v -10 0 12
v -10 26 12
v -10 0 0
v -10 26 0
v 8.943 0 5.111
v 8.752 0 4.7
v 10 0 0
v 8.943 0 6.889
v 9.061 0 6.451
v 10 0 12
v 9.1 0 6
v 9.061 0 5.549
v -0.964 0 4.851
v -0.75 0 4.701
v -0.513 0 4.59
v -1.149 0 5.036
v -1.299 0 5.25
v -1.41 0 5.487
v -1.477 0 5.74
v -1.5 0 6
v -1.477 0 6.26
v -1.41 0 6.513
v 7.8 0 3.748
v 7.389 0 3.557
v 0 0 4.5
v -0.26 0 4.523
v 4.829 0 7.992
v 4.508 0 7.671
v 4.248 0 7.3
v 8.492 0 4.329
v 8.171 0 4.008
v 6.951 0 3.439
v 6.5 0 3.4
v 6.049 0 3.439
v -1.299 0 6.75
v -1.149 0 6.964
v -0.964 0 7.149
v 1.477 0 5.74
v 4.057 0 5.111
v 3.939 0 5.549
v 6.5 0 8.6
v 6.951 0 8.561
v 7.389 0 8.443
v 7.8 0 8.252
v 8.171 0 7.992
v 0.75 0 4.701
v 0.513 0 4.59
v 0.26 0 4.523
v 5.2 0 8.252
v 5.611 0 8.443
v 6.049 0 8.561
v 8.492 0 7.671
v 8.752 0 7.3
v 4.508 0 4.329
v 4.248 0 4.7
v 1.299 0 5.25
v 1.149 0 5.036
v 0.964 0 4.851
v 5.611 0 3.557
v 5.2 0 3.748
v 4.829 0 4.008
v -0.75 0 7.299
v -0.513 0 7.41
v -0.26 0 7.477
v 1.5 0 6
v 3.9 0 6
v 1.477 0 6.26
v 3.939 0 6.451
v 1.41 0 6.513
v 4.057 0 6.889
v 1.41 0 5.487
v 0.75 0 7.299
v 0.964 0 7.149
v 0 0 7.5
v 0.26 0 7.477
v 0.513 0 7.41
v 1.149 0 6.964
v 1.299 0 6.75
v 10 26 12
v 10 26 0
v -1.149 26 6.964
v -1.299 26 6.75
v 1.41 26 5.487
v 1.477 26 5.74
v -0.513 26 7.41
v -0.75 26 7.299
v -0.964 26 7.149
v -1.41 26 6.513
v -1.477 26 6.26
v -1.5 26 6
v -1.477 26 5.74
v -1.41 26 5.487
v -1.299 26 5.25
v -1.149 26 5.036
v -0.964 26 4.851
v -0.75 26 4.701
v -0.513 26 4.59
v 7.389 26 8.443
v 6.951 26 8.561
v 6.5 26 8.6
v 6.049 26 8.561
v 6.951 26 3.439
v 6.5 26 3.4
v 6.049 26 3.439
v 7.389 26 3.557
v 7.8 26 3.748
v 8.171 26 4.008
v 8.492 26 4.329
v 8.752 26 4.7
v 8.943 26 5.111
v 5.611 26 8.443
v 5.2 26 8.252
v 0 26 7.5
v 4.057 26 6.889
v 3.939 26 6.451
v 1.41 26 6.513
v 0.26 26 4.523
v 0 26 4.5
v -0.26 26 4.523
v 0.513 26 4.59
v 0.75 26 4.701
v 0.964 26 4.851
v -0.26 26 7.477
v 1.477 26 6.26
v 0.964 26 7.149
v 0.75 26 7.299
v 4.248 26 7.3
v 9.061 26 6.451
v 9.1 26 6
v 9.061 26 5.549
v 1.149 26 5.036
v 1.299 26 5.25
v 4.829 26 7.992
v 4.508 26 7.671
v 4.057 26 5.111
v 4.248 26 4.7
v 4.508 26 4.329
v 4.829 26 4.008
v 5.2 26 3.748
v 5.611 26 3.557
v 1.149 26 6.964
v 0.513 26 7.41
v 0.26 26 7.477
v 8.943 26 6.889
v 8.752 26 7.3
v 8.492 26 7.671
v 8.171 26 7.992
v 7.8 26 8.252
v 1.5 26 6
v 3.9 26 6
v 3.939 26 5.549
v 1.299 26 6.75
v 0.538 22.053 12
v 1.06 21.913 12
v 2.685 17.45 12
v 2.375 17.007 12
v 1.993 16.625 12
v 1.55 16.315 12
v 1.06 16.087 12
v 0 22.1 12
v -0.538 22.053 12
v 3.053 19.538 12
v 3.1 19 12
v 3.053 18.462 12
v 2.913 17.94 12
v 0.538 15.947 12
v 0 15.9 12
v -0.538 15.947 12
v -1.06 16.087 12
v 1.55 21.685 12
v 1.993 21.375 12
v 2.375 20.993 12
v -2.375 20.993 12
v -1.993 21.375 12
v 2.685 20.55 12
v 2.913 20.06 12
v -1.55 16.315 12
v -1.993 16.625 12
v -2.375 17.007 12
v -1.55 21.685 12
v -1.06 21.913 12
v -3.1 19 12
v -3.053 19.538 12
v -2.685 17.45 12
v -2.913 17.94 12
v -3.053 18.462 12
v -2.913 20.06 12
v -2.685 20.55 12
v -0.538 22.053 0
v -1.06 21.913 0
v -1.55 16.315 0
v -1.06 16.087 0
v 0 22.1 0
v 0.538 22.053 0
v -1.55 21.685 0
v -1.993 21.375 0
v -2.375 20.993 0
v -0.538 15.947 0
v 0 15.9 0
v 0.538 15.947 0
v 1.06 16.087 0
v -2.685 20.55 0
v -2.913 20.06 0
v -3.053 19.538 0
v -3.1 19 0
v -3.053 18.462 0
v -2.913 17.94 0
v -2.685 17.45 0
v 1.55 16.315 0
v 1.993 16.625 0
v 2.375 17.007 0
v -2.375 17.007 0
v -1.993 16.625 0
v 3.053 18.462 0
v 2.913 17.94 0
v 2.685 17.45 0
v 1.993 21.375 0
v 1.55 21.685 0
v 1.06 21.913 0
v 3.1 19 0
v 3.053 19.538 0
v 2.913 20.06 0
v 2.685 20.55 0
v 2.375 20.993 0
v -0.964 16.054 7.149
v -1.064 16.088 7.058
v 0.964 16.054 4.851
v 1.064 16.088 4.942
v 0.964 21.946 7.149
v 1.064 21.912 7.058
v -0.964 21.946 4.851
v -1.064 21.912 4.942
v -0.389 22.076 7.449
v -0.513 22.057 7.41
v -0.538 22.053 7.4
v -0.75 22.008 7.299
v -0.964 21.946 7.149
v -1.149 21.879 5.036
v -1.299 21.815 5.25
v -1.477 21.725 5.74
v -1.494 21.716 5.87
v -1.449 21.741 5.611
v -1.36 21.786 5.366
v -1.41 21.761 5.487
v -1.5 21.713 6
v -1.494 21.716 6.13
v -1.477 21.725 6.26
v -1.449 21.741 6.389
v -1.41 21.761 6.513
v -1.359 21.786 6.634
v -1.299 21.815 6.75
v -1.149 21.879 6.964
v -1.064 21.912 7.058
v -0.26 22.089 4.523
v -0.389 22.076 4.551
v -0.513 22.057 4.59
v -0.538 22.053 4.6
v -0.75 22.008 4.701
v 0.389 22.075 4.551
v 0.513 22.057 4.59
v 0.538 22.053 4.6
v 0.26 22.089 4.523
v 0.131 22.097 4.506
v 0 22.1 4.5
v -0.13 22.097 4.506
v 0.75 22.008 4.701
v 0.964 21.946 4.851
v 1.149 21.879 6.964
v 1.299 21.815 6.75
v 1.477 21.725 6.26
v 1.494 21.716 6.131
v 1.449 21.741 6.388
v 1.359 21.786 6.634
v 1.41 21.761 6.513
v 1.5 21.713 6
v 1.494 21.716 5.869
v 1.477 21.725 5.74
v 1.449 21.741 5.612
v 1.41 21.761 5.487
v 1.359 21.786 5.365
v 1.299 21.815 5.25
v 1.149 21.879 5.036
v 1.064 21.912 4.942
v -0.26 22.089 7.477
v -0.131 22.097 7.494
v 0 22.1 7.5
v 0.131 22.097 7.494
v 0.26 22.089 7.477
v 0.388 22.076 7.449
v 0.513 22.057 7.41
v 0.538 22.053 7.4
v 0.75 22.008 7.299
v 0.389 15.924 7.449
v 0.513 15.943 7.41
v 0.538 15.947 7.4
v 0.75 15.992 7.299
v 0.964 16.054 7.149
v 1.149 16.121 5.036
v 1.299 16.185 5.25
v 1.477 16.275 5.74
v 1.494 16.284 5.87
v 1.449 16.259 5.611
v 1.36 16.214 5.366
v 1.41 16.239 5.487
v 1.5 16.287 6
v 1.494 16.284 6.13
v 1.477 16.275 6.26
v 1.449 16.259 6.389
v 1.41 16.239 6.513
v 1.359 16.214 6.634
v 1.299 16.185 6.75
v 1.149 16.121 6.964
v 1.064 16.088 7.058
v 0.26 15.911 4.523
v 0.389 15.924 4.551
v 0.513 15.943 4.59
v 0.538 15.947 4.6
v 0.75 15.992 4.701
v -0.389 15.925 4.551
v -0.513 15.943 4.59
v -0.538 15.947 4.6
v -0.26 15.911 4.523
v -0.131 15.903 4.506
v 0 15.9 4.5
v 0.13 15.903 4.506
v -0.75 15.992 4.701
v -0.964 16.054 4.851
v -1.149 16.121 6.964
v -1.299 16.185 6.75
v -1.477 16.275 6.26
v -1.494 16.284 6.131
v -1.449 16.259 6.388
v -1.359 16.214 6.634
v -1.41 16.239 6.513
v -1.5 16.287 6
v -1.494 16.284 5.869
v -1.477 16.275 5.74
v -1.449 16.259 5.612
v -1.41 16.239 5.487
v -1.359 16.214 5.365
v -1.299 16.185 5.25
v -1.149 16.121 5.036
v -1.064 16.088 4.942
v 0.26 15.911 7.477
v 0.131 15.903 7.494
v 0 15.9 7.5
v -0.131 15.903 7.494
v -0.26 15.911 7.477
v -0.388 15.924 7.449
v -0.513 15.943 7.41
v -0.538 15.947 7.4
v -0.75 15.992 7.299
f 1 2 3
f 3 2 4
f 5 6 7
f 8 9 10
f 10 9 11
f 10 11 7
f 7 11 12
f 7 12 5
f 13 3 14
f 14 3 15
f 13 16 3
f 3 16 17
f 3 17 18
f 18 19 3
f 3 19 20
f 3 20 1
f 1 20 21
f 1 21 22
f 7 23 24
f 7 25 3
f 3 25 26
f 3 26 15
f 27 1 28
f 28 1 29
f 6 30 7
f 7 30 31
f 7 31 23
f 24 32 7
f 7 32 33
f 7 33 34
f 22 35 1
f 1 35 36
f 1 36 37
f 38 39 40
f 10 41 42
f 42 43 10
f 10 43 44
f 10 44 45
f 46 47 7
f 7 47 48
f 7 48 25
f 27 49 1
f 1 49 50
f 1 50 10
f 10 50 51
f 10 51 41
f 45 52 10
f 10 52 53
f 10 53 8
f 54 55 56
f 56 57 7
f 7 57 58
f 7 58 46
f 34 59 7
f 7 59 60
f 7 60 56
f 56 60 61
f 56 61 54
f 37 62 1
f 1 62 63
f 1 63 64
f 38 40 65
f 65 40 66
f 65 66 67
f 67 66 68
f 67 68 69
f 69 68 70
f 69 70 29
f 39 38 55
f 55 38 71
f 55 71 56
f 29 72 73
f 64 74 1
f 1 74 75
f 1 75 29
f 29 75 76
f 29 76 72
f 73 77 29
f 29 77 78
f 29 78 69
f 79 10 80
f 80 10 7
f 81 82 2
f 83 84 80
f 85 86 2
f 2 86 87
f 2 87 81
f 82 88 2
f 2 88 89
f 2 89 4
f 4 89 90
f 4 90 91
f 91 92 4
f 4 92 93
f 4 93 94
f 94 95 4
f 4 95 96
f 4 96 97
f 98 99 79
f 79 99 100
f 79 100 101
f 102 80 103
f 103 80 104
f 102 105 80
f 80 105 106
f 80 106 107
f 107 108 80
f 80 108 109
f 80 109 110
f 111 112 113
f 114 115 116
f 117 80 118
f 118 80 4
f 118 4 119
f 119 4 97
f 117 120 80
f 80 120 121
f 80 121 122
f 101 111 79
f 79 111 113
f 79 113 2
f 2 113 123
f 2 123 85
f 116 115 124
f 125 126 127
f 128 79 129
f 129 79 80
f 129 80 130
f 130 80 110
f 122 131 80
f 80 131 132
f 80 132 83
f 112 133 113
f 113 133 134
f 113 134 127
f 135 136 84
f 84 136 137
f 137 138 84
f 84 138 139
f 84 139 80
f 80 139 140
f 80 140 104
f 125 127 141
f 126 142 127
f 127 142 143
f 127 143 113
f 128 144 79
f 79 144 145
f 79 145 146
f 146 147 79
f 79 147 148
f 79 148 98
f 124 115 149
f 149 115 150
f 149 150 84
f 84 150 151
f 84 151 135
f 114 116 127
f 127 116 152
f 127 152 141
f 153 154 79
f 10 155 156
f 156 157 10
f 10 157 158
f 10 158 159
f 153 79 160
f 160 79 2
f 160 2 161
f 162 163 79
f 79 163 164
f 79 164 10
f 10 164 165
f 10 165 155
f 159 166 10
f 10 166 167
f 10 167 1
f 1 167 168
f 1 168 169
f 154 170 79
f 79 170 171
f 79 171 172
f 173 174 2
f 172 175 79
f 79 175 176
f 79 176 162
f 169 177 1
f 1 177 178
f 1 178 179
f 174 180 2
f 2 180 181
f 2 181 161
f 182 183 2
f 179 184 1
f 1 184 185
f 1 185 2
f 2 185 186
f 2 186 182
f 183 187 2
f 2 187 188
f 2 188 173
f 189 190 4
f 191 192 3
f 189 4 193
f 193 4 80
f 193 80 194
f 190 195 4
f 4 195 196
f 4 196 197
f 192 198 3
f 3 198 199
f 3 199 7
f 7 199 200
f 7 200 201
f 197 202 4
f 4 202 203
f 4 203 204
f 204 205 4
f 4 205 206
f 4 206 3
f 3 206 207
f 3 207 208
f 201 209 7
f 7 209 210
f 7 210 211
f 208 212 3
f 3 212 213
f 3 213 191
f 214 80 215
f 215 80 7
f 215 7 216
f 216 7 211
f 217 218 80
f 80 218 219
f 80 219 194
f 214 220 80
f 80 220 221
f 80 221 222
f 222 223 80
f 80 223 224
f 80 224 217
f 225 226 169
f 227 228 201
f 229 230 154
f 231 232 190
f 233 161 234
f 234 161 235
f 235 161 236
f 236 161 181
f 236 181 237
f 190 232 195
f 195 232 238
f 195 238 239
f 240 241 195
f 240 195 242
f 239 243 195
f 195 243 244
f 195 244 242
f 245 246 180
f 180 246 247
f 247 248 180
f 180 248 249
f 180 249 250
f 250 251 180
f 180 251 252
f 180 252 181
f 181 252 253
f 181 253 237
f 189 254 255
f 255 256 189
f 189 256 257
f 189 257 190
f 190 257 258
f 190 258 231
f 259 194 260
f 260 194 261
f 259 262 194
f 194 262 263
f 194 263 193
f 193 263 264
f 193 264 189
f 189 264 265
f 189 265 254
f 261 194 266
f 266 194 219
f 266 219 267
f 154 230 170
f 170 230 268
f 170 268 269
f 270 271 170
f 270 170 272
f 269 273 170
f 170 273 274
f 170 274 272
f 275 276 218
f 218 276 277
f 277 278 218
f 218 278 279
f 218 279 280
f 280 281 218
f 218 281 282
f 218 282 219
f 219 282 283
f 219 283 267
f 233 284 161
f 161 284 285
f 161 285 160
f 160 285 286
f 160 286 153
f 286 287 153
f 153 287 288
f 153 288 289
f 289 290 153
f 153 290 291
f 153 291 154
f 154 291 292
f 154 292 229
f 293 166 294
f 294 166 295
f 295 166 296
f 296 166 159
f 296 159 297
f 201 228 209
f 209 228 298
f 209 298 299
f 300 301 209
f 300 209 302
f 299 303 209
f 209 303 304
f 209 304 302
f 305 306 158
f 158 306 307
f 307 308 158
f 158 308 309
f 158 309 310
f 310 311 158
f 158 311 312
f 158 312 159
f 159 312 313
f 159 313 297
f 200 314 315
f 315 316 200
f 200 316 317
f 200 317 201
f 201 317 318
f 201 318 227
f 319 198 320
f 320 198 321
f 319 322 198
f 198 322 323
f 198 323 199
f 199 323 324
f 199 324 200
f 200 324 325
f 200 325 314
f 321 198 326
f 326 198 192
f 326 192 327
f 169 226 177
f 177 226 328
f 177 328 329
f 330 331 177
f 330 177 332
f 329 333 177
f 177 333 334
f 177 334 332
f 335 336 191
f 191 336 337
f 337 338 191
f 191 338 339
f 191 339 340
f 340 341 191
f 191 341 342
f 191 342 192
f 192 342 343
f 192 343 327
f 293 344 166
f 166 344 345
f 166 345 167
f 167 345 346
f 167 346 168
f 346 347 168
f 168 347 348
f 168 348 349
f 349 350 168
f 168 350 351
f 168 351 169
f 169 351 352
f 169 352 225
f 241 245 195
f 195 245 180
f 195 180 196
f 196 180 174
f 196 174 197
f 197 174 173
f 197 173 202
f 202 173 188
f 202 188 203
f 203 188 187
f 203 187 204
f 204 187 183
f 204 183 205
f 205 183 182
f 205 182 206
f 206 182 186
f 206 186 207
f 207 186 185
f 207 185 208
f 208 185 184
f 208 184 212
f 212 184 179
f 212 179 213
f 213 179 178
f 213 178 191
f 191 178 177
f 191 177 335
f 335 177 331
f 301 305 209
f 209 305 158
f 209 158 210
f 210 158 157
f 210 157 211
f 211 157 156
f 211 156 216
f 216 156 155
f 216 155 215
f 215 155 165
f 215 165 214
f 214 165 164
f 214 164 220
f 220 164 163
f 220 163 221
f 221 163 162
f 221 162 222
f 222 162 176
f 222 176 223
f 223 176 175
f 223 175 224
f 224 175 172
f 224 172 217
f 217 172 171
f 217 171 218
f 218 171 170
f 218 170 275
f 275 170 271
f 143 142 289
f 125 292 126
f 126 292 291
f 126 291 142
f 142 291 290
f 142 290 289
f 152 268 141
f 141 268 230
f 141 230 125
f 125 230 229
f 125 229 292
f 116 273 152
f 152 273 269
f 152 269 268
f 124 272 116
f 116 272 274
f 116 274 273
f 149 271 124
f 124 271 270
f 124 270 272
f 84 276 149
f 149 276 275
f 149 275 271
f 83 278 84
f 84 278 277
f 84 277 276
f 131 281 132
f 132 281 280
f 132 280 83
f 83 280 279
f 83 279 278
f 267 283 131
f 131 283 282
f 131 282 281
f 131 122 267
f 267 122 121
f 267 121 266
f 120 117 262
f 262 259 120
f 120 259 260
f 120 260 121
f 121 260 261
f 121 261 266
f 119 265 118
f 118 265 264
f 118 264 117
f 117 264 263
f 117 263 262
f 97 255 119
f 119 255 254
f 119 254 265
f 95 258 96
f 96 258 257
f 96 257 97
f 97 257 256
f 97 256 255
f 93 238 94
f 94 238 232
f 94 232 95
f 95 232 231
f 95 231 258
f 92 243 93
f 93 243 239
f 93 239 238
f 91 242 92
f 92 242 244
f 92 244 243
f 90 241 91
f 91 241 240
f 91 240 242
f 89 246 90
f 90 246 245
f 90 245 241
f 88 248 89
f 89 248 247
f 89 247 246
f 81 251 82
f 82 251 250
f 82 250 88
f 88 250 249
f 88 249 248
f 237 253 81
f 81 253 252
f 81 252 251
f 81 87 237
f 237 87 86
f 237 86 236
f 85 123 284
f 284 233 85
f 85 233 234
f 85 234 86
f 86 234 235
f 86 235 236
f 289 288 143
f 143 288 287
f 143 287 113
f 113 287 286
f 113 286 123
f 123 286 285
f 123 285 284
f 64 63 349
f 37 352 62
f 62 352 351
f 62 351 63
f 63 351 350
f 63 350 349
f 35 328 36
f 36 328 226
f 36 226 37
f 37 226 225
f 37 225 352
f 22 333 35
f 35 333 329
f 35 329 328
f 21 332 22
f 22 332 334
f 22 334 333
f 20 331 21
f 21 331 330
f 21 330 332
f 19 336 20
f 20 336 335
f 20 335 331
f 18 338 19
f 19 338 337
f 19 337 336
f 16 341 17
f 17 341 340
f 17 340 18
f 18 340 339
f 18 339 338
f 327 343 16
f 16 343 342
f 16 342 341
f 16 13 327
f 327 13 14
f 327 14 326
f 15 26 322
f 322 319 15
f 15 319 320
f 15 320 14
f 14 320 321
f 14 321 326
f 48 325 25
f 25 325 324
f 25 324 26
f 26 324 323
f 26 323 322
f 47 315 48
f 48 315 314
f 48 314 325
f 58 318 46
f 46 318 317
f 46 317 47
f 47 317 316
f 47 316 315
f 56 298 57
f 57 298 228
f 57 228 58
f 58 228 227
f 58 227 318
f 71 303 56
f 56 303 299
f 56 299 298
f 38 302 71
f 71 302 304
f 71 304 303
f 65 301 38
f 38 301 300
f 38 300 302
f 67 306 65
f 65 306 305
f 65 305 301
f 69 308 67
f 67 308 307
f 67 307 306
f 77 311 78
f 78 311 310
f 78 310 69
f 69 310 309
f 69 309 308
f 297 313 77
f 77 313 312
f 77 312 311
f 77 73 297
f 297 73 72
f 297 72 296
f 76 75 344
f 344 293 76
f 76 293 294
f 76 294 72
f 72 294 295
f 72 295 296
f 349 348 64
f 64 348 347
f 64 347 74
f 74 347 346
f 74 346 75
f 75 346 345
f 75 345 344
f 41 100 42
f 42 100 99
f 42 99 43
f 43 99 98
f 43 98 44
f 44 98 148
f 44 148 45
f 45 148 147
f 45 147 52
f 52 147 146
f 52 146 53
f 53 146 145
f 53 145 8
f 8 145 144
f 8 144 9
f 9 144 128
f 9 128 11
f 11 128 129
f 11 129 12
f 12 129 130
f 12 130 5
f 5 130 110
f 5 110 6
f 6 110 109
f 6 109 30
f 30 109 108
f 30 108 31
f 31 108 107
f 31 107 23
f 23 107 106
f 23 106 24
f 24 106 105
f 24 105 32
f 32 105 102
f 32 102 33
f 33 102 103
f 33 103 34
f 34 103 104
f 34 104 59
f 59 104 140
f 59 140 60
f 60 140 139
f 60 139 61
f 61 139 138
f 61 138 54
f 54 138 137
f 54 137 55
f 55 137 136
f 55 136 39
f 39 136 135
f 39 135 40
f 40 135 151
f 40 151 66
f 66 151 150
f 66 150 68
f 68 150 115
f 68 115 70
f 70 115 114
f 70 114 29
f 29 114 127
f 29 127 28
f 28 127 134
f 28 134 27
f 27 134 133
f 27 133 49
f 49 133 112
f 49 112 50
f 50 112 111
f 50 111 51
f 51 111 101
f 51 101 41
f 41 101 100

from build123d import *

# Parameters (mm, degrees)
SKETCH1_W           = 20
SKETCH1_H           = 26
BOSS_EXTRUDE1_DEPTH = 12
SKETCH2_R           = 3.1
CUT_EXTRUDE1_DEPTH  = 40
SKETCH3_R           = 2.6
SKETCH3_R_2         = 1.5
CUT_EXTRUDE2_DEPTH  = 40


with BuildPart() as part:
    # Sketch1 → Boss-Extrude1 (new body)
    with BuildSketch(Plane.XY):
        with Locations((0, 13)):
            Rectangle(SKETCH1_W, SKETCH1_H)
    extrude(amount=BOSS_EXTRUDE1_DEPTH)

    # Sketch2 → Cut-Extrude1 (cut, symmetric)
    with BuildSketch(Plane.XY):
        with Locations((0, 19)):
            Circle(SKETCH2_R)
    extrude(amount=CUT_EXTRUDE1_DEPTH, both=True, mode=Mode.SUBTRACT)

    # Sketch3 → Cut-Extrude2 (cut, symmetric)
    with BuildSketch(Plane(origin=(0, 0, 0), x_dir=(1, 0, 0), z_dir=(0, 1, 0))):
        with Locations((6.5, -6)):
            Circle(SKETCH3_R)
        with Locations((0, -6)):
            Circle(SKETCH3_R_2)
    extrude(amount=CUT_EXTRUDE2_DEPTH, both=True, mode=Mode.SUBTRACT)


solid = part.part
